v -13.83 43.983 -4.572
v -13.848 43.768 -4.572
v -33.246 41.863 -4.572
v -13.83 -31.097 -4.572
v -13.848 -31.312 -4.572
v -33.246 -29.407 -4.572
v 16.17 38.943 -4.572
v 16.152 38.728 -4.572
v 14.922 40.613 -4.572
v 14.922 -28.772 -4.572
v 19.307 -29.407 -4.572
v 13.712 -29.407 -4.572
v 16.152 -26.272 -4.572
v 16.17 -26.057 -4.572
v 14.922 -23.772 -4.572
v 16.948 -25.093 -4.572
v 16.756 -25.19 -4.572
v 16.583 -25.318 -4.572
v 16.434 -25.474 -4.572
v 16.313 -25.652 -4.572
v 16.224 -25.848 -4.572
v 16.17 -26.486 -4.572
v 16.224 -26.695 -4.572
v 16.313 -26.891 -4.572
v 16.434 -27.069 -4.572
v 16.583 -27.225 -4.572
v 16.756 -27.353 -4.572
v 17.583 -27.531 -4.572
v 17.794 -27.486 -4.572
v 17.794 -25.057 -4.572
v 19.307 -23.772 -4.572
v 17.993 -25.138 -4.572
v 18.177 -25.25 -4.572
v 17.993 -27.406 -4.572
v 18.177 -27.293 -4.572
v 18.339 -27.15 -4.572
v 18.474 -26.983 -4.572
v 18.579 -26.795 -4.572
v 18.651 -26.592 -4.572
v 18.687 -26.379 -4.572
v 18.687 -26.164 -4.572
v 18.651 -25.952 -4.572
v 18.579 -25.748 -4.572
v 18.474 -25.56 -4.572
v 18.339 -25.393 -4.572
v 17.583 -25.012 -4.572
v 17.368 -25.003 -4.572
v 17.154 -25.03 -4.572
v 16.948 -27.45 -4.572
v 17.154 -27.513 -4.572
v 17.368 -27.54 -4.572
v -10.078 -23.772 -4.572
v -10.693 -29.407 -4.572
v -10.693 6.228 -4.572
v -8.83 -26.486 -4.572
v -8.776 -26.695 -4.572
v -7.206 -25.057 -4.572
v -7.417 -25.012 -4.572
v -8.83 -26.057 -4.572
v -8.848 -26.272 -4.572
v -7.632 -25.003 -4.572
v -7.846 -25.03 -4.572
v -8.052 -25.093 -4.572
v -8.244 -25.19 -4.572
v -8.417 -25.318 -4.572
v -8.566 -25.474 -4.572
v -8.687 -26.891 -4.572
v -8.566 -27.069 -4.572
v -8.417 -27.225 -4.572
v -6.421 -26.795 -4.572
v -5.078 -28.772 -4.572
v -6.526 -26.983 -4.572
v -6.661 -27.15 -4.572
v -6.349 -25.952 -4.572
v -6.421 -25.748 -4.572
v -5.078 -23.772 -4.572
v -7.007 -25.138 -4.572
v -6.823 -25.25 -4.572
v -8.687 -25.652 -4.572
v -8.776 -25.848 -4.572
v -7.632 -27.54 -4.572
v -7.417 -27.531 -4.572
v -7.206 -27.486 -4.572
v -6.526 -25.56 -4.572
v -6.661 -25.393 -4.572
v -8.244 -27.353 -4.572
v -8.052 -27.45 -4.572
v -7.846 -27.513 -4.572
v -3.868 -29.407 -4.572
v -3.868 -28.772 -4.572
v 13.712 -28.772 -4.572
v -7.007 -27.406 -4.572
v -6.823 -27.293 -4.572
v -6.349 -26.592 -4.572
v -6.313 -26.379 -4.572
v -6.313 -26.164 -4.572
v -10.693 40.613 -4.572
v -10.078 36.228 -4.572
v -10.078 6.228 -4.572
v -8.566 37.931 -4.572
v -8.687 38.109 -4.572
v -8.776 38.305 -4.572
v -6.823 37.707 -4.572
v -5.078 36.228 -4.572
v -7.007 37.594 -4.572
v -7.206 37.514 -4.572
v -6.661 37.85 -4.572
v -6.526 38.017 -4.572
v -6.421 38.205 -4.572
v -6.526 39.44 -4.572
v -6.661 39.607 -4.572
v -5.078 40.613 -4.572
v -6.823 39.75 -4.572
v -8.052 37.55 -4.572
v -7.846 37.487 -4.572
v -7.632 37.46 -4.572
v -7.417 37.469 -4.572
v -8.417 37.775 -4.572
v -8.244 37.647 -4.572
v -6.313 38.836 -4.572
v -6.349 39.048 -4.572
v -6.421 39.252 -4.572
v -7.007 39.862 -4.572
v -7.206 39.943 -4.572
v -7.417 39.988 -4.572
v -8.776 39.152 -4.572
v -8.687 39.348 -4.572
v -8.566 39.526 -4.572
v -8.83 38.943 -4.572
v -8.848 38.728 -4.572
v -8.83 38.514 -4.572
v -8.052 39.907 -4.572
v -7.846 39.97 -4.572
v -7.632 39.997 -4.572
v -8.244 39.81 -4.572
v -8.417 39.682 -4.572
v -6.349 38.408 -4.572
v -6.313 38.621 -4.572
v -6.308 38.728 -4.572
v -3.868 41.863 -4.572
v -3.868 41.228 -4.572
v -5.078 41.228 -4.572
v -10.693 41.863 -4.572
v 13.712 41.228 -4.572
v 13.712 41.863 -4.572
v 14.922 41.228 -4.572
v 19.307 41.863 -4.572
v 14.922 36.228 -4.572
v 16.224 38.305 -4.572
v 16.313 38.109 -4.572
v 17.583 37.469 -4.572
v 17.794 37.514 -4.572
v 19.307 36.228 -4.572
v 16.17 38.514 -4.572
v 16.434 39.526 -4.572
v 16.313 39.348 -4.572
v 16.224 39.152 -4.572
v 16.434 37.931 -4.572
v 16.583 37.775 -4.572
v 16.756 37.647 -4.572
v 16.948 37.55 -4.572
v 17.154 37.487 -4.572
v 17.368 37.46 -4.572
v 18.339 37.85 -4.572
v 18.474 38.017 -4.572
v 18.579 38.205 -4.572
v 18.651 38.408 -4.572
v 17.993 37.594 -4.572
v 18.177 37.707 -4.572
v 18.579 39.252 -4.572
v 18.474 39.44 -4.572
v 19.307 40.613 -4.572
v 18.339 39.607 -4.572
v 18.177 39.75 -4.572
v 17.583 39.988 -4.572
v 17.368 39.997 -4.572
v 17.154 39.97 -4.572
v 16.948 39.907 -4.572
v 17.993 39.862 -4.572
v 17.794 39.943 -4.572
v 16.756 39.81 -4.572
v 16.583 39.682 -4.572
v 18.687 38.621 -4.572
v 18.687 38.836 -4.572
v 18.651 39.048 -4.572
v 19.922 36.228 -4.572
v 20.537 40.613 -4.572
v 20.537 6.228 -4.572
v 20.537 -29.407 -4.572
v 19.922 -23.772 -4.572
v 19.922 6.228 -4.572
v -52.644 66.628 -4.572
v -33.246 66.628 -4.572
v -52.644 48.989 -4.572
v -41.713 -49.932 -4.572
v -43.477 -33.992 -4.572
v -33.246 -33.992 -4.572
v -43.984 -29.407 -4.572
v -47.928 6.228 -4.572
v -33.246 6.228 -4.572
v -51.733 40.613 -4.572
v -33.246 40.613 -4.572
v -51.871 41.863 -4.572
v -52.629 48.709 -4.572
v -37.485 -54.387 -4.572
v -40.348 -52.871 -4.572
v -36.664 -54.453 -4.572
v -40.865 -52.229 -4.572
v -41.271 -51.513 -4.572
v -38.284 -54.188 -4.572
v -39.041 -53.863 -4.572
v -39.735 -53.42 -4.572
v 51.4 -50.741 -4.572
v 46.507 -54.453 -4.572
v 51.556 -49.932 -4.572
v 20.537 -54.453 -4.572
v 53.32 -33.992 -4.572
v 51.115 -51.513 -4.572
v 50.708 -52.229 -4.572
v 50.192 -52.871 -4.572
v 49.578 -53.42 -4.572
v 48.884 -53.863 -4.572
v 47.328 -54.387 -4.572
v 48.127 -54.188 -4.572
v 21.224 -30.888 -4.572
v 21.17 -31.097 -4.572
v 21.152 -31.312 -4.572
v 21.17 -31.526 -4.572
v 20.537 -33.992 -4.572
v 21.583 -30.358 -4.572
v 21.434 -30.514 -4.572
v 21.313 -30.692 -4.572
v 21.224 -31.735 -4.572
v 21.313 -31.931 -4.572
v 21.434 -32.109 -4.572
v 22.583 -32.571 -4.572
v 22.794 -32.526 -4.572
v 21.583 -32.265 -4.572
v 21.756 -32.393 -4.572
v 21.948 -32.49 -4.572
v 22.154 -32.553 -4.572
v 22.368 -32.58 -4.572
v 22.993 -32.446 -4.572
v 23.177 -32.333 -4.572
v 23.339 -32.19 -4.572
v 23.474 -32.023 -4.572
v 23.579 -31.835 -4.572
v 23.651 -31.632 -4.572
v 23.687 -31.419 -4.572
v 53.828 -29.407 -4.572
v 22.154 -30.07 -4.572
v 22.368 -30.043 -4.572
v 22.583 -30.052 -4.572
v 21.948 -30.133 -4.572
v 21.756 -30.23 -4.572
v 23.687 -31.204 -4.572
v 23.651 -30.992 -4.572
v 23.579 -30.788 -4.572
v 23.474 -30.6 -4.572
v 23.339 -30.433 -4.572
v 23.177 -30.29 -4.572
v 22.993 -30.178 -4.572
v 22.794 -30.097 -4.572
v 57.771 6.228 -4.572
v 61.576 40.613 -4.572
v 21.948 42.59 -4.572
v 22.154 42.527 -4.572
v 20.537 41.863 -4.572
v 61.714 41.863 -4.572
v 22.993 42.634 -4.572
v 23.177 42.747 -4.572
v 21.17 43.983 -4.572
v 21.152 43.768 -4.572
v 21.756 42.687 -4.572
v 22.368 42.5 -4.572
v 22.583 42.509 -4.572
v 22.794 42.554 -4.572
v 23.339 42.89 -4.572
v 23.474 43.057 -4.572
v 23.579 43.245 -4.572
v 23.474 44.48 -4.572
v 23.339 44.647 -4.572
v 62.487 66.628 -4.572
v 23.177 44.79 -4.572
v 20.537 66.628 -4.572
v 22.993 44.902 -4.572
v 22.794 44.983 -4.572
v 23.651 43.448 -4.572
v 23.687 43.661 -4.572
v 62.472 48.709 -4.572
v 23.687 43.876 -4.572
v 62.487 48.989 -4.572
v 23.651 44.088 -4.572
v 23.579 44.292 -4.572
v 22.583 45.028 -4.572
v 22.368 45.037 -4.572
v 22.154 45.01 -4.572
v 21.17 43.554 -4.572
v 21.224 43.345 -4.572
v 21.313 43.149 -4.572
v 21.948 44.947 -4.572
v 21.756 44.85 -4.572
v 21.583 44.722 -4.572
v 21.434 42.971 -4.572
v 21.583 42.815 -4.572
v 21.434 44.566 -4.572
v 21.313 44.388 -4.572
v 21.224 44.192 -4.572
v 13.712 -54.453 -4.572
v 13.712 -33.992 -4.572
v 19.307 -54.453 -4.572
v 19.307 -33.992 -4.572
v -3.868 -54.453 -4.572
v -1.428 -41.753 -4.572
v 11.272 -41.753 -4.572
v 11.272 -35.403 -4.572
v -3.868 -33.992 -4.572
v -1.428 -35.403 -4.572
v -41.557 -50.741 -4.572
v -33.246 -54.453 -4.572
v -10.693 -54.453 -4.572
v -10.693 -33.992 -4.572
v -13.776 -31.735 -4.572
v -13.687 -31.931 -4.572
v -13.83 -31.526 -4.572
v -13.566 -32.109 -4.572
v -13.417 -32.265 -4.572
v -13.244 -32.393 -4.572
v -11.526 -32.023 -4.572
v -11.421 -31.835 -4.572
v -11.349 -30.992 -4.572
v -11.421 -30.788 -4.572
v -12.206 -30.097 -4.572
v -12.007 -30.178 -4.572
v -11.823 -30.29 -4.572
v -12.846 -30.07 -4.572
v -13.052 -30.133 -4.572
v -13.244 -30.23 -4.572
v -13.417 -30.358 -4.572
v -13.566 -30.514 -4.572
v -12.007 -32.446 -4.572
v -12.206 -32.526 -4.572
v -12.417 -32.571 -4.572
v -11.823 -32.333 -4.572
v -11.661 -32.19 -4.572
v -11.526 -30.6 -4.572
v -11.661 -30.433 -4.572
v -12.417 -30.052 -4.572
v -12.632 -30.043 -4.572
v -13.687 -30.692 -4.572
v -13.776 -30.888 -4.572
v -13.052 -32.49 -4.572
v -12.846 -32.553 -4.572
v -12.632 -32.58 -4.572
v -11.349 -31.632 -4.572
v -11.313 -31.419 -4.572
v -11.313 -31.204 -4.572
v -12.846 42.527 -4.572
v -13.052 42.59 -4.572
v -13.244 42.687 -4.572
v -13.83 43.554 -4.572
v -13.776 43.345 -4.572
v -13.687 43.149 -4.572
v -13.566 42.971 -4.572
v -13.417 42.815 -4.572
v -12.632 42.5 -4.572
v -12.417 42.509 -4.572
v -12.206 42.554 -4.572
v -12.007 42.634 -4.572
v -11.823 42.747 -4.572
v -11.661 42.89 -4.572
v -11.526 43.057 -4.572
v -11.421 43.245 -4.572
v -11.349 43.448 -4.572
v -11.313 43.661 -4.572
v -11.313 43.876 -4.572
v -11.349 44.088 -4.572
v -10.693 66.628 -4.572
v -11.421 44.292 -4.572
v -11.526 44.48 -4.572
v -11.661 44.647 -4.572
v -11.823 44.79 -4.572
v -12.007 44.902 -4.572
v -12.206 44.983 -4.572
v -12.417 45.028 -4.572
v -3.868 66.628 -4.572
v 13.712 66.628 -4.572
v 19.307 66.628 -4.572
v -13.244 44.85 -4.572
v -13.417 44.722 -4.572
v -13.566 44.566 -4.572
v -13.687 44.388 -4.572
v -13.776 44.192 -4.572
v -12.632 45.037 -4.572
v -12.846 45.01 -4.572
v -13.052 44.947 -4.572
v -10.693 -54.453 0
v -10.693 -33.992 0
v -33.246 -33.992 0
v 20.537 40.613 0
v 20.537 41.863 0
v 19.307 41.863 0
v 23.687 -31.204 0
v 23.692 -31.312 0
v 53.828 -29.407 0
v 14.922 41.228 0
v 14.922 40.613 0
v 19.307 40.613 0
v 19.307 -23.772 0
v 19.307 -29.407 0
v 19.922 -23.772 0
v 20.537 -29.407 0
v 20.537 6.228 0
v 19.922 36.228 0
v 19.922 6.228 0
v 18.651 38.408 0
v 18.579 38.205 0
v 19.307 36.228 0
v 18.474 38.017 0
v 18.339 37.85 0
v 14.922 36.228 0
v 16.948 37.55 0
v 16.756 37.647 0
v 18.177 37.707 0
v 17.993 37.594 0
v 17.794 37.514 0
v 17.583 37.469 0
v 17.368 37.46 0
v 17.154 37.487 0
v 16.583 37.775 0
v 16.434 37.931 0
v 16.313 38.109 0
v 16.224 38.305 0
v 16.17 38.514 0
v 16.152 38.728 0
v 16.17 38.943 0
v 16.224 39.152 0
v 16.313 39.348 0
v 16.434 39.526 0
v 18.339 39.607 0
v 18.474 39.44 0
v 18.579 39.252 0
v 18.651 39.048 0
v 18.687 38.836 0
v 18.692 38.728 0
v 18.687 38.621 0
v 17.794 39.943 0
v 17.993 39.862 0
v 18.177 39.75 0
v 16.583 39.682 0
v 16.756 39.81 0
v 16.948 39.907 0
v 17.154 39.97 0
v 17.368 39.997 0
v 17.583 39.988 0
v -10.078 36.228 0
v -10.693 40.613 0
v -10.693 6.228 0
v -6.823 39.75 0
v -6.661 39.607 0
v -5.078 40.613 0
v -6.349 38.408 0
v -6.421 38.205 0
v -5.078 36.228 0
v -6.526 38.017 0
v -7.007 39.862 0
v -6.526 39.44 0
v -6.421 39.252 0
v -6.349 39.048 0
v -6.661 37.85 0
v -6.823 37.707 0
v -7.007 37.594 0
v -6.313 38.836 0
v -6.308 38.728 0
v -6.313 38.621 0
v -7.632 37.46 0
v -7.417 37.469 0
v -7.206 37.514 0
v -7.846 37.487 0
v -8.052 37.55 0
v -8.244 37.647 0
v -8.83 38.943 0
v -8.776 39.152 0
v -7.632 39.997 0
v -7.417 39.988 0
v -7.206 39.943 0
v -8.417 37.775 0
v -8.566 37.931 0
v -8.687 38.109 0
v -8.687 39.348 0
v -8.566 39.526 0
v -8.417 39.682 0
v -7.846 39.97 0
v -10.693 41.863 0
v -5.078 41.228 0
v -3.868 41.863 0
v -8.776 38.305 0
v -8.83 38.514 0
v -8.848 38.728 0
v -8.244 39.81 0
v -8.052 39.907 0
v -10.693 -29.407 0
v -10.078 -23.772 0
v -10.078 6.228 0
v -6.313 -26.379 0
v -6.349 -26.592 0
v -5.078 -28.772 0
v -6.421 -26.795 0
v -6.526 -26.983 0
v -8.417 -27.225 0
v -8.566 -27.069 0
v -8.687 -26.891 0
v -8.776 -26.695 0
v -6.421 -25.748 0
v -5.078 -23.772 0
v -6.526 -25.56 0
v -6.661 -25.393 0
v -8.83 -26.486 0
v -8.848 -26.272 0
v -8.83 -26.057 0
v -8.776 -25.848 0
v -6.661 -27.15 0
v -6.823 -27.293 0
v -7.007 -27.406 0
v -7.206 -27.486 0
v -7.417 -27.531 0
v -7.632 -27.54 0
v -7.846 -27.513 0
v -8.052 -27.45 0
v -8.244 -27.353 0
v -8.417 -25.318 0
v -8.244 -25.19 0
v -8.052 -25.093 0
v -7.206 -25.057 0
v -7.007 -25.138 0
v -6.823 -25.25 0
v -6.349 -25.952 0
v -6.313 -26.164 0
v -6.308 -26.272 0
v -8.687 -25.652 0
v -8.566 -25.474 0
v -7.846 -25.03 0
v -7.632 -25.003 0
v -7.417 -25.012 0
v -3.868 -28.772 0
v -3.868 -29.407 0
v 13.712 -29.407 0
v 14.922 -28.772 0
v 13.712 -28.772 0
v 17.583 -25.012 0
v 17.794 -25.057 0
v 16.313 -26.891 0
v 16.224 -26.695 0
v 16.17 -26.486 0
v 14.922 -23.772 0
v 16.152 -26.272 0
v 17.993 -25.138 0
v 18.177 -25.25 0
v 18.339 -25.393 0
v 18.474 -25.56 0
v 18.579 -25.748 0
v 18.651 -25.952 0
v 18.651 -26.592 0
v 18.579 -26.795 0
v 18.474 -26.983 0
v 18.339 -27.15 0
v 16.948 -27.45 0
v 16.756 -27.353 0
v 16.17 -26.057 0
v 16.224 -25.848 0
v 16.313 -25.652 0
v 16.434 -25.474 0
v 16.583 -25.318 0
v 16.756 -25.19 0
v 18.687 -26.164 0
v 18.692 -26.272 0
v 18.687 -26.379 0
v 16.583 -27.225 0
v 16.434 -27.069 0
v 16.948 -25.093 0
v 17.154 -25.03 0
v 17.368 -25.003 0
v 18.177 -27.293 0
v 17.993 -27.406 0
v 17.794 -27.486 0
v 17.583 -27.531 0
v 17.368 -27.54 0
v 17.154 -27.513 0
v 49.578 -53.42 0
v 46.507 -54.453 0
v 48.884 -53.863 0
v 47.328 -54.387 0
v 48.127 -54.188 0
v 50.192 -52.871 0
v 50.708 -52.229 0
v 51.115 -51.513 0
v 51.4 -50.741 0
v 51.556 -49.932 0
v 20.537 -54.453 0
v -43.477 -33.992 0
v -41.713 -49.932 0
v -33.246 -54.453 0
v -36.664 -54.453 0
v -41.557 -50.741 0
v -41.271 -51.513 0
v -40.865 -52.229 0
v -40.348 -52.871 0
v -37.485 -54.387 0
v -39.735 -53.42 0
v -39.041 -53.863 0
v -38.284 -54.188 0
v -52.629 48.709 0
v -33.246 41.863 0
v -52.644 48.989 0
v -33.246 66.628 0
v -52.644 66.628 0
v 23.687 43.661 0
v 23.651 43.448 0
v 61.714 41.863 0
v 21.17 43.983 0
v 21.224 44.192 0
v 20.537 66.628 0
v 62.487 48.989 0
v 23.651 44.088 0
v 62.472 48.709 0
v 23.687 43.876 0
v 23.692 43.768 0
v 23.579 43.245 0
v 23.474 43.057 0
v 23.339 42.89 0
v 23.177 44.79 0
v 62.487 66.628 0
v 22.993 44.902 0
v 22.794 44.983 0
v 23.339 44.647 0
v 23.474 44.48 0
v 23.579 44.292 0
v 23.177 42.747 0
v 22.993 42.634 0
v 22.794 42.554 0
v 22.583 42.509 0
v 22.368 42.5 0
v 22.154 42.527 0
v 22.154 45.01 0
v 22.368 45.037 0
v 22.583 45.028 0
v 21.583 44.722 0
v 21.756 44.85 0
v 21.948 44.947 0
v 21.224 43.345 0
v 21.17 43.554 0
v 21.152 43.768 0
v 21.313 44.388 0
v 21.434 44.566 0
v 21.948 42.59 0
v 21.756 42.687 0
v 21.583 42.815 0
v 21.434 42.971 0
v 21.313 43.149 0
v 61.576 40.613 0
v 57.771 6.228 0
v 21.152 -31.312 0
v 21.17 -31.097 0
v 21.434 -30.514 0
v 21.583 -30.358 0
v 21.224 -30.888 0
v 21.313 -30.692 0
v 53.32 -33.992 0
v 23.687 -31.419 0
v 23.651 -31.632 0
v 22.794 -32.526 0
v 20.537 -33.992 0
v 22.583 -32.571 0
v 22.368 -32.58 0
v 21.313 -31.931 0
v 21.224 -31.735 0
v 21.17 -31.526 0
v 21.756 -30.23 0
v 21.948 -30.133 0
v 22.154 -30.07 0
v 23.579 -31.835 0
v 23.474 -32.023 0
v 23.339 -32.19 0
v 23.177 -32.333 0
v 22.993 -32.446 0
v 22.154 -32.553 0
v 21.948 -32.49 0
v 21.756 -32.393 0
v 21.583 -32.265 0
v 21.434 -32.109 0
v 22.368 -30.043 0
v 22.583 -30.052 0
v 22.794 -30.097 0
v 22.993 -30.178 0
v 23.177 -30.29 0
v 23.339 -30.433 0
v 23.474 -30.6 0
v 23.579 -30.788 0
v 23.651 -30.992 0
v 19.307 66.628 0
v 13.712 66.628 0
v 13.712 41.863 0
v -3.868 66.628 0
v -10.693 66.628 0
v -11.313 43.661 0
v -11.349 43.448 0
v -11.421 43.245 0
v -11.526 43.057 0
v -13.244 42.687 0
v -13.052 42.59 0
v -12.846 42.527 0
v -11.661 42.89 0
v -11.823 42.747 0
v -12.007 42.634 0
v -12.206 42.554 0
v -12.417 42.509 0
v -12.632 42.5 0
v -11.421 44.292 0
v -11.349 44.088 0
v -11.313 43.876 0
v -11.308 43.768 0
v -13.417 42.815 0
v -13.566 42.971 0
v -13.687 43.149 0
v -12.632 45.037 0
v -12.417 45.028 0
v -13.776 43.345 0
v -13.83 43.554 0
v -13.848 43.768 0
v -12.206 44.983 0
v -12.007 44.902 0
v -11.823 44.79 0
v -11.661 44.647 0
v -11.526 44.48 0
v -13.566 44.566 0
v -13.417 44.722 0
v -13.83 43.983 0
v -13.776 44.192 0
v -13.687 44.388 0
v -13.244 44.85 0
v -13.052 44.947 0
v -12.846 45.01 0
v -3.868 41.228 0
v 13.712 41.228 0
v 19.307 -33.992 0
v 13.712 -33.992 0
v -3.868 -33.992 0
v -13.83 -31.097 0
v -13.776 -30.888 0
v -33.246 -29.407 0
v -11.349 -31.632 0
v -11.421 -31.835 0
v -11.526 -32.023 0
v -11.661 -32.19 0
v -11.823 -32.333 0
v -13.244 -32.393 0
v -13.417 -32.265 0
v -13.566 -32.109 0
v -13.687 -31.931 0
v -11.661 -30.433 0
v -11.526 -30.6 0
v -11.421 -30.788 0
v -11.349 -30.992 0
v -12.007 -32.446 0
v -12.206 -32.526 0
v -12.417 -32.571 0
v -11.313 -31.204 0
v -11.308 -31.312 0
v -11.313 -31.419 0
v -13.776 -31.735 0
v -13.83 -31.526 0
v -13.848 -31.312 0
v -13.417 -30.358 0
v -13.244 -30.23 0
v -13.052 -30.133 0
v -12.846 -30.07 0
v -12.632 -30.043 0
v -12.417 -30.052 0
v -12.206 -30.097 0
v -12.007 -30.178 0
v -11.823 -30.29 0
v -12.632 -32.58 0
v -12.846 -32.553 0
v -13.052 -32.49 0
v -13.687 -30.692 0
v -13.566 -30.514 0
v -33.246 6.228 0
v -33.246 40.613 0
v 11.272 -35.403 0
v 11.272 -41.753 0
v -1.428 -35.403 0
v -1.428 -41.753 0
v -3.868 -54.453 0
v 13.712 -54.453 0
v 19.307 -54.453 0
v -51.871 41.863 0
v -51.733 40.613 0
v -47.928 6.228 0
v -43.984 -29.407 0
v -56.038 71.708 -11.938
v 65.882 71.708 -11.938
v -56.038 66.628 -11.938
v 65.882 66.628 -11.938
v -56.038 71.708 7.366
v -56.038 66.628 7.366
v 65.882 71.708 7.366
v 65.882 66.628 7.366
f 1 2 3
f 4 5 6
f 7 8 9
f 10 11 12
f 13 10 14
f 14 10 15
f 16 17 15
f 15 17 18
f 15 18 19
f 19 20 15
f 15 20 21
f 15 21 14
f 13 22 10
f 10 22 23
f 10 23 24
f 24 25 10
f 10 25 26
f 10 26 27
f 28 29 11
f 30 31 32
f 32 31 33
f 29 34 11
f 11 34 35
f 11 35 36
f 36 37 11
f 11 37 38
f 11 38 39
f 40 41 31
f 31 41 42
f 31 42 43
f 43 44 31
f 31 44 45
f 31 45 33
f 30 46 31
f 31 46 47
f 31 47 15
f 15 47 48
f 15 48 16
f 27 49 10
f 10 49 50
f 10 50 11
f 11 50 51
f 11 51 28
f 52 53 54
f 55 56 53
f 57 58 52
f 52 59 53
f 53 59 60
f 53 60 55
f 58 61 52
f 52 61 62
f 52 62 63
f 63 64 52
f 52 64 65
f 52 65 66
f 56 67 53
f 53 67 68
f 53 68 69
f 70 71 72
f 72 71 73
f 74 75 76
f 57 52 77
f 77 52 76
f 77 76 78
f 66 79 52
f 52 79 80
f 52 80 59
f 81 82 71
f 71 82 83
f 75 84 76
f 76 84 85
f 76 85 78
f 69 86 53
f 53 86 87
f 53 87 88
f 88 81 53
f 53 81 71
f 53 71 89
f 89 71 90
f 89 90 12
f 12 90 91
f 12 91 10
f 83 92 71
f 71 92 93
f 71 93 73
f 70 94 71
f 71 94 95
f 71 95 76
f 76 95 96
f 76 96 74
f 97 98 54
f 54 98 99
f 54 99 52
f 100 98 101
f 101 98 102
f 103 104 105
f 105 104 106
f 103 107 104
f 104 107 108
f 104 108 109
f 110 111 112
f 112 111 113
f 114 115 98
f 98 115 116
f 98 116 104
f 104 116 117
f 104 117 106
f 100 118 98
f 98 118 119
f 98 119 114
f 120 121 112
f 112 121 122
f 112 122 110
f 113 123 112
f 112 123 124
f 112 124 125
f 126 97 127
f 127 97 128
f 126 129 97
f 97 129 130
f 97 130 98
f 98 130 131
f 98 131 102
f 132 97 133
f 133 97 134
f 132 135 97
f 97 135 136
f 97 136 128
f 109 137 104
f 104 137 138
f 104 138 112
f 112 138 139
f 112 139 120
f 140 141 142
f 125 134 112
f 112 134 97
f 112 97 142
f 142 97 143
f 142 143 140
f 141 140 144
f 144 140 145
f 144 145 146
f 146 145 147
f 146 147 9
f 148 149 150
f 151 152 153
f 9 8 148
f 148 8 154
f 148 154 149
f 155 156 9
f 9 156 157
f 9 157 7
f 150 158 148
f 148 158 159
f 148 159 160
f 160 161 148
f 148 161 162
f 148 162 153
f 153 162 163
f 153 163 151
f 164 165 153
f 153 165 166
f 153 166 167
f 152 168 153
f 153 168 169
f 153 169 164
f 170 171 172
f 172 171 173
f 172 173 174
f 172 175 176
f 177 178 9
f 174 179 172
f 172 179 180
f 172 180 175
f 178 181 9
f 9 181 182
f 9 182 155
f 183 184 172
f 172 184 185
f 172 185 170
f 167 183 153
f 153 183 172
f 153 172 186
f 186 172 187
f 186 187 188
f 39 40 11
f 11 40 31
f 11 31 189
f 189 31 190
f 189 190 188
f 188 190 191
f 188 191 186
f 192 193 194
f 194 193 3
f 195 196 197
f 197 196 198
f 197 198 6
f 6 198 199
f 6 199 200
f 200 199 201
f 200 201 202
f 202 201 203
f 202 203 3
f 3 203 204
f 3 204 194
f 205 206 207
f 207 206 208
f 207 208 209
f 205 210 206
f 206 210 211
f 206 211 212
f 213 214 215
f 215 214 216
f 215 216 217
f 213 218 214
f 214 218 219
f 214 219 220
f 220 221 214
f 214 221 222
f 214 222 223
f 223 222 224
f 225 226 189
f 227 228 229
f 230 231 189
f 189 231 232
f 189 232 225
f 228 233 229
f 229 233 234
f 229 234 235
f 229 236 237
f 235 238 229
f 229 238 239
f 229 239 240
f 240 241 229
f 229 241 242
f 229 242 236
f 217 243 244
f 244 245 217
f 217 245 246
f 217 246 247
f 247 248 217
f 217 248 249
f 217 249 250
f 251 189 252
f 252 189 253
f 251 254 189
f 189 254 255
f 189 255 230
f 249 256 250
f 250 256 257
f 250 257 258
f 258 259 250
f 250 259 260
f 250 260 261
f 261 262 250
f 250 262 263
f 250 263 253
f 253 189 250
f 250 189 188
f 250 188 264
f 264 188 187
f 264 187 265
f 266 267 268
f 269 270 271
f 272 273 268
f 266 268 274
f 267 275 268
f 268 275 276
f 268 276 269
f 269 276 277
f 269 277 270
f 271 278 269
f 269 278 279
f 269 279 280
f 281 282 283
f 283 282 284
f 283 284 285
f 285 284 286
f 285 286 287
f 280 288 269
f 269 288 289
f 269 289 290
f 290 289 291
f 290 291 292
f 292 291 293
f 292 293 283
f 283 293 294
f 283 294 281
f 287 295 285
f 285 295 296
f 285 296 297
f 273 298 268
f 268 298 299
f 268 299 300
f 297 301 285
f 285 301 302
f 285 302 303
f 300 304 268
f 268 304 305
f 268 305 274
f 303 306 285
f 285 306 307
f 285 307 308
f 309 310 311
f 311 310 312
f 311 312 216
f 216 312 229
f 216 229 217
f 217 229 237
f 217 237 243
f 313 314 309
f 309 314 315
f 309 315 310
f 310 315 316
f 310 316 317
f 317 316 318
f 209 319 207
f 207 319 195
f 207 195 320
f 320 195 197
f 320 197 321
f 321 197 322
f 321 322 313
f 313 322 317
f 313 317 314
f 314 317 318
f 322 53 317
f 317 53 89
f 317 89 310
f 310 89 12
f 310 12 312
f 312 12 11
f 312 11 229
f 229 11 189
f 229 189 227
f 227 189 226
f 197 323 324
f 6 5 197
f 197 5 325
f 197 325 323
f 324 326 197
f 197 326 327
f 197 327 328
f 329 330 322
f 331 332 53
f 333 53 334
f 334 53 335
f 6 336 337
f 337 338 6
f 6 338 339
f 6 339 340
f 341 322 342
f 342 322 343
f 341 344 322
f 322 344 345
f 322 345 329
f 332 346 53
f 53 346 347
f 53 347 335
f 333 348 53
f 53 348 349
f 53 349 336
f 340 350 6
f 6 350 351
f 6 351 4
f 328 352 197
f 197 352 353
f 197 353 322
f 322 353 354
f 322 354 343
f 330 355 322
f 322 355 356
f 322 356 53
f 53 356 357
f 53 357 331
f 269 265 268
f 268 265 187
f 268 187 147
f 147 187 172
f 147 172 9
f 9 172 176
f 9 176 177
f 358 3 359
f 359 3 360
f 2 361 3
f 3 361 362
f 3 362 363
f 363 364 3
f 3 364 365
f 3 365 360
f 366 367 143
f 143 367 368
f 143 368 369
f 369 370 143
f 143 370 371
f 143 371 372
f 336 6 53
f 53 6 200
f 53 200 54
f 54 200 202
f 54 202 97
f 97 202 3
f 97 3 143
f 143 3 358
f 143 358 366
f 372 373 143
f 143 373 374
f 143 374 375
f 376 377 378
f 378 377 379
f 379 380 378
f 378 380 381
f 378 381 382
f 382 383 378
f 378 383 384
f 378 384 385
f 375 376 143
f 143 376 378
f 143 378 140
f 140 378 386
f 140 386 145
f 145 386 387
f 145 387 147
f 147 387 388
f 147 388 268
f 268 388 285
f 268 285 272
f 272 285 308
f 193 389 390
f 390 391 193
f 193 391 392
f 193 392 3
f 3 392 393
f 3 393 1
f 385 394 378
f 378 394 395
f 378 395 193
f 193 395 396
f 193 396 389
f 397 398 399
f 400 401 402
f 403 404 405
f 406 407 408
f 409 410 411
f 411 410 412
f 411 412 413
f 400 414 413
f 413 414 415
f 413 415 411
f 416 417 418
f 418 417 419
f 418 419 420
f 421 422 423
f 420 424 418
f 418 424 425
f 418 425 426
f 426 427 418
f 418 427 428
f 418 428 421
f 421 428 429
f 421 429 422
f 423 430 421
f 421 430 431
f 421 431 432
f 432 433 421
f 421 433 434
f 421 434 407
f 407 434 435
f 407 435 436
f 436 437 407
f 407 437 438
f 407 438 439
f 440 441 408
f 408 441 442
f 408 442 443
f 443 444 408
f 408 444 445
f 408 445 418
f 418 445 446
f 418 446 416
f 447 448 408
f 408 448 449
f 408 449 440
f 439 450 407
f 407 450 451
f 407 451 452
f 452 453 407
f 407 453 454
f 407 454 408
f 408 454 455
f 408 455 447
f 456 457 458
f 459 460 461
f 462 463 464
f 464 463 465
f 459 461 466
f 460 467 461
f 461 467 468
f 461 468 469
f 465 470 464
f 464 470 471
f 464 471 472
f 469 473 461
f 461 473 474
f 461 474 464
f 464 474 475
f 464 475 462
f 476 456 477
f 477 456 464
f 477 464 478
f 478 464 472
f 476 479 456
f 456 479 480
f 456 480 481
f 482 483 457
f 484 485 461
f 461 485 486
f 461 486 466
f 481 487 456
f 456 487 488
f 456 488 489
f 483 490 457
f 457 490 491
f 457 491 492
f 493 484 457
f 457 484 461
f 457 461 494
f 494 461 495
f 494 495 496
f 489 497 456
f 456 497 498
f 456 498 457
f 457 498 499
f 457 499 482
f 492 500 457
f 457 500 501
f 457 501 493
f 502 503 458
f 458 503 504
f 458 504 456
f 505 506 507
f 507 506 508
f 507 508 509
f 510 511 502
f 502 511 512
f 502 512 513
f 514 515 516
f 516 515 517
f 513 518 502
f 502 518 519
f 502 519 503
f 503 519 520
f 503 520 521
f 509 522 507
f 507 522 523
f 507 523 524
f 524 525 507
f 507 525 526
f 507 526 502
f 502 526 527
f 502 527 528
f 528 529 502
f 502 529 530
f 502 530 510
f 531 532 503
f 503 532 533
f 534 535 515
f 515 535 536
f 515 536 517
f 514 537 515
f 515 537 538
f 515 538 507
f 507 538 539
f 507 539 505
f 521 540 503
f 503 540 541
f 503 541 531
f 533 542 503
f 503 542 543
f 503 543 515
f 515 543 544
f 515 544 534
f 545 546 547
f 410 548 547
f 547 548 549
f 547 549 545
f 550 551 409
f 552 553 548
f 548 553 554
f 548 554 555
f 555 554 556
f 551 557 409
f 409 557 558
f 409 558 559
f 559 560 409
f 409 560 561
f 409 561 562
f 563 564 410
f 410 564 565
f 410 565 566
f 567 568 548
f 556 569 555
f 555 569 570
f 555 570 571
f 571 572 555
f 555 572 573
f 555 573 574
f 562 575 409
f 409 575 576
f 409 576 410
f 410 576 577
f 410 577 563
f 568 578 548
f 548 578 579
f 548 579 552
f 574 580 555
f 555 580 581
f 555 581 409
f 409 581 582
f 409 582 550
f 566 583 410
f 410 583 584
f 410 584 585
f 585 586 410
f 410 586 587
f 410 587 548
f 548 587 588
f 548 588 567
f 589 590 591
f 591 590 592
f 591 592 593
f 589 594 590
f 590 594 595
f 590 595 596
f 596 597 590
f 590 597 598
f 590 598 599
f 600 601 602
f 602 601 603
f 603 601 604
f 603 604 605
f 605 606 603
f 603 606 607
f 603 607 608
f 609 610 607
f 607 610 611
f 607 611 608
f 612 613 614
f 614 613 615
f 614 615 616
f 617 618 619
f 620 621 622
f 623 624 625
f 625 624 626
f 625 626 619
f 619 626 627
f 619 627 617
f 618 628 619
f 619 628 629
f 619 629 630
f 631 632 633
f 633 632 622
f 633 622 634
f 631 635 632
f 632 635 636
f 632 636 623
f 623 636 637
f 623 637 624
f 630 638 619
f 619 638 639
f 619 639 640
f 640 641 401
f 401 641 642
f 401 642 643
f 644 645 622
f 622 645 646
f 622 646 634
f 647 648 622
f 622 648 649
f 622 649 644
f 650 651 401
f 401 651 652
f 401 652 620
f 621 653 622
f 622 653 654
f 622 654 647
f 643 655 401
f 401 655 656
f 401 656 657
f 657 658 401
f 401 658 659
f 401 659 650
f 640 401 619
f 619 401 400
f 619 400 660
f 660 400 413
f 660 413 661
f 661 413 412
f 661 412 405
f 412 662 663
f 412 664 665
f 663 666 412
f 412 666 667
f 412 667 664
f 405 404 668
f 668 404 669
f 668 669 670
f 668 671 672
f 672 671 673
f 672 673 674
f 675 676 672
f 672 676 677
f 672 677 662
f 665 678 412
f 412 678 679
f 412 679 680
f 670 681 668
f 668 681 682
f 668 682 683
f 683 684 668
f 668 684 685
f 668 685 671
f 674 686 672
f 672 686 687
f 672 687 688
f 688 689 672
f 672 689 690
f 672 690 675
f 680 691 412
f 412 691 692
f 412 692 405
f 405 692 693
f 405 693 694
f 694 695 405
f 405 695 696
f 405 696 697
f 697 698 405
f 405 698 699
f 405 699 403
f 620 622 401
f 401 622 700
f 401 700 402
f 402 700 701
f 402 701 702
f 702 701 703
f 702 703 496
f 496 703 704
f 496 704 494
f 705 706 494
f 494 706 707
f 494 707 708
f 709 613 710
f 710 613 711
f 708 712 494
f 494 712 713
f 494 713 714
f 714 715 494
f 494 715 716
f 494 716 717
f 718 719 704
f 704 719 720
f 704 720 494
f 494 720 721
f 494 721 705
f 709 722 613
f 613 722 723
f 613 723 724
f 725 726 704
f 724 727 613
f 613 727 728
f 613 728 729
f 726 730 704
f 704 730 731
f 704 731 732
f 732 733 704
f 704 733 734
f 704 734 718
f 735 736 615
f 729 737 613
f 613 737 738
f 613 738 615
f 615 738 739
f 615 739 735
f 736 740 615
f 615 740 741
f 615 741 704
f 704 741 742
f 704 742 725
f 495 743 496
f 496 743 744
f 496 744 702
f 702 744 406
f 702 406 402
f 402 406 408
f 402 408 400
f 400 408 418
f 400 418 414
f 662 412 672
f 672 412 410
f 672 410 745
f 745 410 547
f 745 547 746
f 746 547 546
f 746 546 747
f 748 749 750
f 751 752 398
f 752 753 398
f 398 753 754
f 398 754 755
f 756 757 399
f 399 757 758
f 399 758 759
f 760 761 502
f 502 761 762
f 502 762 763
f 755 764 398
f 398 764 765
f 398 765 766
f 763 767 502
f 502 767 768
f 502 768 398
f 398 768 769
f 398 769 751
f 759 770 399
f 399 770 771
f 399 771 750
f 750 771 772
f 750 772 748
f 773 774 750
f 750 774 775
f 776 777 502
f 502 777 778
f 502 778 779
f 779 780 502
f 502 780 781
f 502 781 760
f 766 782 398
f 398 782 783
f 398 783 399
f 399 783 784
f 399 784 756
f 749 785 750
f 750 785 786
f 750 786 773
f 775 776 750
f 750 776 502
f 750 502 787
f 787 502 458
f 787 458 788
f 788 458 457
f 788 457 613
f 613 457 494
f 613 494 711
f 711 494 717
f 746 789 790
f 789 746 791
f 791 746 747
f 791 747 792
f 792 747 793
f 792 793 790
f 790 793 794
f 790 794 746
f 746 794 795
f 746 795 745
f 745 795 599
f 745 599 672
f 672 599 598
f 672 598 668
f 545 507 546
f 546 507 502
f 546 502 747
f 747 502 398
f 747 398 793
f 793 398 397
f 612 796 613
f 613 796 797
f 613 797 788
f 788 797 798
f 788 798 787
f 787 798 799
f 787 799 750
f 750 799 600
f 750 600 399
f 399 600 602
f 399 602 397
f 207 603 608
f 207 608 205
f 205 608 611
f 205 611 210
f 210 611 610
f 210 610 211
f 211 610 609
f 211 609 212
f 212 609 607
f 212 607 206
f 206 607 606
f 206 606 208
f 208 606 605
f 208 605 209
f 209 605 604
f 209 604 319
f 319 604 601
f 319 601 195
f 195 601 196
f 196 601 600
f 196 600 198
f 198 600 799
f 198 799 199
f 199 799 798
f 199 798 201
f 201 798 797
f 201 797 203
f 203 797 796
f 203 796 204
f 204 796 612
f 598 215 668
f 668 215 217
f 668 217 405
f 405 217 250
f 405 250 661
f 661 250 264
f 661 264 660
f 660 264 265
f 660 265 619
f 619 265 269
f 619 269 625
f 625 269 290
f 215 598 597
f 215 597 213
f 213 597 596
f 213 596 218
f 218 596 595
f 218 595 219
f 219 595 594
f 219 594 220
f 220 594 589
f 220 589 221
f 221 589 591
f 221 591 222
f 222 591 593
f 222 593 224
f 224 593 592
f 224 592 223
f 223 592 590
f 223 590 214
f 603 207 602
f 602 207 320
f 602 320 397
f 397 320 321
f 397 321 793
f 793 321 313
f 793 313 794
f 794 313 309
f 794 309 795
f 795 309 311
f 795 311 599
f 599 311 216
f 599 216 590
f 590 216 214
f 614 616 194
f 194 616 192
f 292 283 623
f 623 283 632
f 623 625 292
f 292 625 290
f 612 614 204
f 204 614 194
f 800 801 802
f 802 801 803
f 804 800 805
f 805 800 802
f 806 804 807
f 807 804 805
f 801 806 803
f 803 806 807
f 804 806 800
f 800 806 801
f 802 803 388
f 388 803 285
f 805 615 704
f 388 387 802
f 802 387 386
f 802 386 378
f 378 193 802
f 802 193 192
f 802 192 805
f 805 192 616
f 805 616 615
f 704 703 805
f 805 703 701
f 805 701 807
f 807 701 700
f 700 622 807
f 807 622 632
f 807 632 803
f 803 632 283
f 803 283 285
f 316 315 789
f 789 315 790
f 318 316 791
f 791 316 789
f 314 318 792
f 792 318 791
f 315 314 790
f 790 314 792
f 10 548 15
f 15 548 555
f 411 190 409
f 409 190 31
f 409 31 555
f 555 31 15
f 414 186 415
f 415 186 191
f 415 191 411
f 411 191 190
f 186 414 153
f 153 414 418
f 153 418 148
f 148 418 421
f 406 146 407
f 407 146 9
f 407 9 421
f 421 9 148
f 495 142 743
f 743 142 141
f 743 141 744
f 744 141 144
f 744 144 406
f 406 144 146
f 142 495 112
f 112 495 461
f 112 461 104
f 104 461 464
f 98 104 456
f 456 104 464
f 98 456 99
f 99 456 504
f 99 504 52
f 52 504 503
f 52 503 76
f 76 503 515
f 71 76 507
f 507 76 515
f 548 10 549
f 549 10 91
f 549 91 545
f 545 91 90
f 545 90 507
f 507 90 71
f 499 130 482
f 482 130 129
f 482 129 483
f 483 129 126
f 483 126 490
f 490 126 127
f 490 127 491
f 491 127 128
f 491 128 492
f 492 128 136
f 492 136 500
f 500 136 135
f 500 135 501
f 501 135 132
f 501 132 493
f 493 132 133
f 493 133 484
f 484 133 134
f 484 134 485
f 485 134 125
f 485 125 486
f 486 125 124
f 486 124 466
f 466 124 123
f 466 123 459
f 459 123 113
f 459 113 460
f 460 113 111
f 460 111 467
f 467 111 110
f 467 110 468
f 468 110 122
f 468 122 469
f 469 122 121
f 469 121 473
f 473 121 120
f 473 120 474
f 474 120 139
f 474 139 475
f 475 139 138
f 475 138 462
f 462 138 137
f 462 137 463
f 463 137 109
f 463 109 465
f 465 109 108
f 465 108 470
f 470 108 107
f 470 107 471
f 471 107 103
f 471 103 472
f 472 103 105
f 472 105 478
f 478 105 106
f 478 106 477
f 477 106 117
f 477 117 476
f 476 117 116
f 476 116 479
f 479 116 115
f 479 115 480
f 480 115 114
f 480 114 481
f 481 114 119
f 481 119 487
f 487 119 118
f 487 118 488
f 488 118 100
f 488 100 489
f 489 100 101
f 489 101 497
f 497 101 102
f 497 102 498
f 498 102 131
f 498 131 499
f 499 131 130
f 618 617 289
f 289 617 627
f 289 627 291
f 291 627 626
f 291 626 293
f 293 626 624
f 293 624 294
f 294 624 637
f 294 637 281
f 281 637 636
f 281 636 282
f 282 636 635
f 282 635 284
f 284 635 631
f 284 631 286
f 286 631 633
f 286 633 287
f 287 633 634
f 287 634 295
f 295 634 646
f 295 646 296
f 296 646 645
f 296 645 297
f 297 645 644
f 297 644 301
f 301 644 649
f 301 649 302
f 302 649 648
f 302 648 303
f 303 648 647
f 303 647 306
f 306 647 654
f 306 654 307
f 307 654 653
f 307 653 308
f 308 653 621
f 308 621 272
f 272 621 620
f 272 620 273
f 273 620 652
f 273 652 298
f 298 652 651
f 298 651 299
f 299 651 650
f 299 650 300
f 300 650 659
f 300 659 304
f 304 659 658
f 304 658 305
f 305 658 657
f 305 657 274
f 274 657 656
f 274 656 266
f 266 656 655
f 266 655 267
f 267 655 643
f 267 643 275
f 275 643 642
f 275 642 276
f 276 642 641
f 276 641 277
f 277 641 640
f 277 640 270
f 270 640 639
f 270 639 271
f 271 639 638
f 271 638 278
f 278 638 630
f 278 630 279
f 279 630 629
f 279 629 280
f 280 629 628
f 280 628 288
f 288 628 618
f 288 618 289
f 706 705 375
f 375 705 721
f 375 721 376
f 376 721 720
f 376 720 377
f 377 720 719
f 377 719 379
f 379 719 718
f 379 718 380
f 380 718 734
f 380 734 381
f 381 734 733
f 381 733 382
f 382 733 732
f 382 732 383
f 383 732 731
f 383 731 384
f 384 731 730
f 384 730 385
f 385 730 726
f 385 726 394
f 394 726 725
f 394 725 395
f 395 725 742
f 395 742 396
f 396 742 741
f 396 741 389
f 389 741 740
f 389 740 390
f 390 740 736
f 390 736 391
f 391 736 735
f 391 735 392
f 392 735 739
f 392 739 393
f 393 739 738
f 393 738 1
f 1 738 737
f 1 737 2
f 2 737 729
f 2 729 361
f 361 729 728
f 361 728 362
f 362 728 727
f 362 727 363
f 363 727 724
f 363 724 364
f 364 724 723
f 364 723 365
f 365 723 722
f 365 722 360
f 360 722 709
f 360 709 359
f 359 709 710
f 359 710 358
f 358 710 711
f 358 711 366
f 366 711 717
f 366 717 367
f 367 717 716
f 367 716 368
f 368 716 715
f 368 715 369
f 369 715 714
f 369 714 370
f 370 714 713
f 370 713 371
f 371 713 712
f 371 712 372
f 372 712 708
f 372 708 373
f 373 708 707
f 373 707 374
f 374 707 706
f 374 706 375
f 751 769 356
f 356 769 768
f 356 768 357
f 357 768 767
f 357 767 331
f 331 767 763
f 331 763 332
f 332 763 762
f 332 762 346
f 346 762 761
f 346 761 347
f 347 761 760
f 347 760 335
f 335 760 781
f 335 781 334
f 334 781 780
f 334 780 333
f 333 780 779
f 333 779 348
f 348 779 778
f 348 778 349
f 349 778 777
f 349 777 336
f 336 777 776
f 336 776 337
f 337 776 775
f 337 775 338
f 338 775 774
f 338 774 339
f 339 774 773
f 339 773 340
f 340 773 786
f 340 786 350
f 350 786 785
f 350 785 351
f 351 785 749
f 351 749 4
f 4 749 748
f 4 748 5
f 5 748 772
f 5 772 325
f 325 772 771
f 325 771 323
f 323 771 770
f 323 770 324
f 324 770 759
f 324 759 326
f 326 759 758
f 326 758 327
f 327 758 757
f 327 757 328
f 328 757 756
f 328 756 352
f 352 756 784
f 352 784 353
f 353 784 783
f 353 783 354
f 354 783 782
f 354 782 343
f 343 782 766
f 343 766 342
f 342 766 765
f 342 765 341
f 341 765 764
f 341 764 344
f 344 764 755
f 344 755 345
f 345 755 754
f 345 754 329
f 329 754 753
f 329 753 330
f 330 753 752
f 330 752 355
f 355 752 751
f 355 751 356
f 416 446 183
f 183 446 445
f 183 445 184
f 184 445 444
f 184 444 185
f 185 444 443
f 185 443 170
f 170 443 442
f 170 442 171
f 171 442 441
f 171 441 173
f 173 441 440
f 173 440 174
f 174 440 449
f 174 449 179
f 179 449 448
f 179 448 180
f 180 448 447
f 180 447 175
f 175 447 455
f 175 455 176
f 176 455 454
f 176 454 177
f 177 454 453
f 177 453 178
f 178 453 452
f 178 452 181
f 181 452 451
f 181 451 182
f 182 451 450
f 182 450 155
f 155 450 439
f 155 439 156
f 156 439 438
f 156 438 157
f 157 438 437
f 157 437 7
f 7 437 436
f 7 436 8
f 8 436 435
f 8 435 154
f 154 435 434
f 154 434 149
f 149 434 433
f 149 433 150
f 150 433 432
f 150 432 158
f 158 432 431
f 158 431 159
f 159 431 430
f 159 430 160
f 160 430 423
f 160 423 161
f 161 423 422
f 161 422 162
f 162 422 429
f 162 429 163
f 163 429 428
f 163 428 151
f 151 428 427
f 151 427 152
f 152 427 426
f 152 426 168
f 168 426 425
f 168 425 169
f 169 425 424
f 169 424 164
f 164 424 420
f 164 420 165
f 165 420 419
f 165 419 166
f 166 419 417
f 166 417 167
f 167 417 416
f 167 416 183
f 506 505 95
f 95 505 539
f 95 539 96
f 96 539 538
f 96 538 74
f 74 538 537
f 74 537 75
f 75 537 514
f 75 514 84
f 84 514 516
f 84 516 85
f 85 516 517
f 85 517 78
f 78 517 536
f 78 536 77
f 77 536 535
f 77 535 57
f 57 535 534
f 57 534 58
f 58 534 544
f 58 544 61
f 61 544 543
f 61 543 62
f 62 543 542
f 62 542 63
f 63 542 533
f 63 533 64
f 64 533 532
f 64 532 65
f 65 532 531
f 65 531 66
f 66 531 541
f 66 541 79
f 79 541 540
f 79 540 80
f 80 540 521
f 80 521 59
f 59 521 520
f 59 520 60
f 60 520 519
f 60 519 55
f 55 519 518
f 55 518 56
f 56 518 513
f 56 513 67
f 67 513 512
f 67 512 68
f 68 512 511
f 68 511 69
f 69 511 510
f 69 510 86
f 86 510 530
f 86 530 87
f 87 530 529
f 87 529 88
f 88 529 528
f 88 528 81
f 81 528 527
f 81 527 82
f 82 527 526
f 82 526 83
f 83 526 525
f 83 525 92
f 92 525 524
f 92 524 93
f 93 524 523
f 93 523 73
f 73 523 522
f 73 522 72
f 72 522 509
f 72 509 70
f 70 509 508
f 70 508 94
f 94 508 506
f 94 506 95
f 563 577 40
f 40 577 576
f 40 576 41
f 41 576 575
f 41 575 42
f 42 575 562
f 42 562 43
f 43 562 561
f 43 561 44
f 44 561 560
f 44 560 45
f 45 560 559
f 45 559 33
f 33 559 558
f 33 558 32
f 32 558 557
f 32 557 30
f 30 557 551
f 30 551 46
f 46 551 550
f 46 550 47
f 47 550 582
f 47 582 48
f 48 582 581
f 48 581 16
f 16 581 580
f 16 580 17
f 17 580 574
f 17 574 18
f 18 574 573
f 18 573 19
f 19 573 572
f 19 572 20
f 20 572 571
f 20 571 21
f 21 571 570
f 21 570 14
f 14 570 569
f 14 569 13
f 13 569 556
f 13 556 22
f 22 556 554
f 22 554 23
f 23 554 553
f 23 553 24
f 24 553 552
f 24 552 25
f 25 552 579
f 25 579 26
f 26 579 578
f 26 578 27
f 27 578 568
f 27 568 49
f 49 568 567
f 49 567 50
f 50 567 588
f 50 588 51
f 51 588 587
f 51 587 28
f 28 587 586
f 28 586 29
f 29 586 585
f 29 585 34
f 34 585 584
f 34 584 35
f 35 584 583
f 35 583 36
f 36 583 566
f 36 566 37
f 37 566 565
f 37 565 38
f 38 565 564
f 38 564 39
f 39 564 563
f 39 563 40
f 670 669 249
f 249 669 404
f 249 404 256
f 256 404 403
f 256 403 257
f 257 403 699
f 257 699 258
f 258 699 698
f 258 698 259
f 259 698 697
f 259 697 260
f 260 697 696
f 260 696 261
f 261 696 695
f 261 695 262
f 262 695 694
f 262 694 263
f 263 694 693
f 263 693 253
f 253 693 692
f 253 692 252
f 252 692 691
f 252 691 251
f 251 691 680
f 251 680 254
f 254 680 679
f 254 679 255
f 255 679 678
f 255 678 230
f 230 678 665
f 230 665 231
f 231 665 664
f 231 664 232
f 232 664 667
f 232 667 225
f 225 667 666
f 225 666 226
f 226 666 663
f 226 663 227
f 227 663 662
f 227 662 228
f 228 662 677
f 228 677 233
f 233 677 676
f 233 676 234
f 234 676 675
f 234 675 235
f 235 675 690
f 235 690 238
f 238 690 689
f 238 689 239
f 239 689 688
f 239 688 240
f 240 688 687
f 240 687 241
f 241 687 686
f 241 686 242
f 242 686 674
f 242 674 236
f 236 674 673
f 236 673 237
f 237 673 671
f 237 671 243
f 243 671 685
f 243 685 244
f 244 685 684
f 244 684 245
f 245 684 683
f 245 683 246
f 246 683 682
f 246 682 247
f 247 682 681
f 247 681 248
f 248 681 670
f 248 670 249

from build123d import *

# Parameters (mm, degrees)
BOSS_EXTRUDE1_DEPTH = 4.572
SKETCH3_W           = 115.1315452
SKETCH3_H           = 4.572
BOSS_EXTRUDE2_DEPTH = 17.78
FILLET1_R           = 2.54
SKETCH4_W           = 121.92
SKETCH4_H           = 19.304
BOSS_EXTRUDE4_DEPTH = 5.08
SKETCH5_W           = 12.7
SKETCH5_H           = 6.35
CUT_EXTRUDE1_DEPTH  = 5.08
SKETCH6_R           = 1.27
CUT_EXTRUDE2_DEPTH  = 6.35


with BuildPart() as part:
    # Sketch2 → Boss-Extrude1 (new body)
    with BuildSketch(Plane(origin=(0, 0, 0), x_dir=(-1, 0, 0), z_dir=(0, 0, -1))):
        with BuildLine():
            Line((-62.487415839, 48.848476089), (52.644129361, 48.848476089))
            Line((52.644129361, 48.848476089), (41.713156468, -49.932022311))
            ThreePointArc((41.713156468, -49.932022311), (40.052782988, -53.157778108), (36.663977171, -54.453284069))
            Line((36.663977171, -54.453284069), (-46.507263649, -54.453284069))
            ThreePointArc((-46.507263649, -54.453284069), (-49.896069466, -53.157778108), (-51.556442946, -49.932022311))
            Line((-51.556442946, -49.932022311), (-62.487415839, 48.848476089))
        make_face()
    extrude(amount=BOSS_EXTRUDE1_DEPTH)

    # Sketch3 → Boss-Extrude2 (add)
    with BuildSketch(Plane(origin=(0, 48.848476089, 0), x_dir=(1, 0, 0), z_dir=(0, 1, 0))):
        with Locations((4.921643239, 2.286)):
            Rectangle(SKETCH3_W, SKETCH3_H)
    extrude(amount=BOSS_EXTRUDE2_DEPTH)

    # Fillet1
    fillet1_edges = [part.edges().sort_by_distance(p)[0] for p in [
        (62.487415839, 48.848476089, -2.286),
        (-52.644129361, 48.848476089, -2.286),
    ]]
    fillet(fillet1_edges, radius=FILLET1_R)

    # Sketch4 → Boss-Extrude4 (add)
    with BuildSketch(Plane(origin=(0, 66.628476089, 0), x_dir=(1, 0, 0), z_dir=(0, 1, 0))):
        with Locations((4.921643239, 2.286)):
            Rectangle(SKETCH4_W, SKETCH4_H)
    extrude(amount=BOSS_EXTRUDE4_DEPTH)

    # Sketch5 → Cut-Extrude1 (cut)
    with BuildSketch(Plane(origin=(0, 0, -4.572), x_dir=(-1, 0, 0), z_dir=(0, 0, -1))):
        with Locations((-4.921643239, -38.578284069)):
            Rectangle(SKETCH5_W, SKETCH5_H)
    extrude(amount=-CUT_EXTRUDE1_DEPTH, mode=Mode.SUBTRACT)

    # Sketch6 → Cut-Extrude2 (cut)
    with BuildSketch(Plane(origin=(0, 0, -4.572), x_dir=(-1, 0, 0), z_dir=(0, 0, -1))):
        Polygon((10.078356761, -23.771523911), (10.078356761, 36.228476089), (5.078356761, 36.228476089), (5.078356761, 41.228476089), (-14.921643239, 41.228476089), (-14.921643239, 36.228476089), (-19.921643239, 36.228476089), (-19.921643239, -23.771523911), (-14.921643239, -23.771523911), (-14.921643239, -28.771523911), (5.078356761, -28.771523911), (5.078356761, -23.771523911), align=None)
        with Locations((-17.421643239, 38.728476089)):
            Circle(SKETCH6_R)
        with Locations((7.578356761, -26.271523911)):
            Circle(SKETCH6_R)
        with Locations((-17.421643239, -26.271523911)):
            Circle(SKETCH6_R)
        with Locations((-22.421643239, -31.311523911)):
            Circle(SKETCH6_R)
        with Locations((12.578356761, -31.311523911)):
            Circle(SKETCH6_R)
        with Locations((12.578356761, 43.768476089)):
            Circle(SKETCH6_R)
        with Locations((-22.421643239, 43.768476089)):
            Circle(SKETCH6_R)
        with Locations((7.578356761, 38.728476089)):
            Circle(SKETCH6_R)
    extrude(amount=-CUT_EXTRUDE2_DEPTH, mode=Mode.SUBTRACT)


solid = part.part
